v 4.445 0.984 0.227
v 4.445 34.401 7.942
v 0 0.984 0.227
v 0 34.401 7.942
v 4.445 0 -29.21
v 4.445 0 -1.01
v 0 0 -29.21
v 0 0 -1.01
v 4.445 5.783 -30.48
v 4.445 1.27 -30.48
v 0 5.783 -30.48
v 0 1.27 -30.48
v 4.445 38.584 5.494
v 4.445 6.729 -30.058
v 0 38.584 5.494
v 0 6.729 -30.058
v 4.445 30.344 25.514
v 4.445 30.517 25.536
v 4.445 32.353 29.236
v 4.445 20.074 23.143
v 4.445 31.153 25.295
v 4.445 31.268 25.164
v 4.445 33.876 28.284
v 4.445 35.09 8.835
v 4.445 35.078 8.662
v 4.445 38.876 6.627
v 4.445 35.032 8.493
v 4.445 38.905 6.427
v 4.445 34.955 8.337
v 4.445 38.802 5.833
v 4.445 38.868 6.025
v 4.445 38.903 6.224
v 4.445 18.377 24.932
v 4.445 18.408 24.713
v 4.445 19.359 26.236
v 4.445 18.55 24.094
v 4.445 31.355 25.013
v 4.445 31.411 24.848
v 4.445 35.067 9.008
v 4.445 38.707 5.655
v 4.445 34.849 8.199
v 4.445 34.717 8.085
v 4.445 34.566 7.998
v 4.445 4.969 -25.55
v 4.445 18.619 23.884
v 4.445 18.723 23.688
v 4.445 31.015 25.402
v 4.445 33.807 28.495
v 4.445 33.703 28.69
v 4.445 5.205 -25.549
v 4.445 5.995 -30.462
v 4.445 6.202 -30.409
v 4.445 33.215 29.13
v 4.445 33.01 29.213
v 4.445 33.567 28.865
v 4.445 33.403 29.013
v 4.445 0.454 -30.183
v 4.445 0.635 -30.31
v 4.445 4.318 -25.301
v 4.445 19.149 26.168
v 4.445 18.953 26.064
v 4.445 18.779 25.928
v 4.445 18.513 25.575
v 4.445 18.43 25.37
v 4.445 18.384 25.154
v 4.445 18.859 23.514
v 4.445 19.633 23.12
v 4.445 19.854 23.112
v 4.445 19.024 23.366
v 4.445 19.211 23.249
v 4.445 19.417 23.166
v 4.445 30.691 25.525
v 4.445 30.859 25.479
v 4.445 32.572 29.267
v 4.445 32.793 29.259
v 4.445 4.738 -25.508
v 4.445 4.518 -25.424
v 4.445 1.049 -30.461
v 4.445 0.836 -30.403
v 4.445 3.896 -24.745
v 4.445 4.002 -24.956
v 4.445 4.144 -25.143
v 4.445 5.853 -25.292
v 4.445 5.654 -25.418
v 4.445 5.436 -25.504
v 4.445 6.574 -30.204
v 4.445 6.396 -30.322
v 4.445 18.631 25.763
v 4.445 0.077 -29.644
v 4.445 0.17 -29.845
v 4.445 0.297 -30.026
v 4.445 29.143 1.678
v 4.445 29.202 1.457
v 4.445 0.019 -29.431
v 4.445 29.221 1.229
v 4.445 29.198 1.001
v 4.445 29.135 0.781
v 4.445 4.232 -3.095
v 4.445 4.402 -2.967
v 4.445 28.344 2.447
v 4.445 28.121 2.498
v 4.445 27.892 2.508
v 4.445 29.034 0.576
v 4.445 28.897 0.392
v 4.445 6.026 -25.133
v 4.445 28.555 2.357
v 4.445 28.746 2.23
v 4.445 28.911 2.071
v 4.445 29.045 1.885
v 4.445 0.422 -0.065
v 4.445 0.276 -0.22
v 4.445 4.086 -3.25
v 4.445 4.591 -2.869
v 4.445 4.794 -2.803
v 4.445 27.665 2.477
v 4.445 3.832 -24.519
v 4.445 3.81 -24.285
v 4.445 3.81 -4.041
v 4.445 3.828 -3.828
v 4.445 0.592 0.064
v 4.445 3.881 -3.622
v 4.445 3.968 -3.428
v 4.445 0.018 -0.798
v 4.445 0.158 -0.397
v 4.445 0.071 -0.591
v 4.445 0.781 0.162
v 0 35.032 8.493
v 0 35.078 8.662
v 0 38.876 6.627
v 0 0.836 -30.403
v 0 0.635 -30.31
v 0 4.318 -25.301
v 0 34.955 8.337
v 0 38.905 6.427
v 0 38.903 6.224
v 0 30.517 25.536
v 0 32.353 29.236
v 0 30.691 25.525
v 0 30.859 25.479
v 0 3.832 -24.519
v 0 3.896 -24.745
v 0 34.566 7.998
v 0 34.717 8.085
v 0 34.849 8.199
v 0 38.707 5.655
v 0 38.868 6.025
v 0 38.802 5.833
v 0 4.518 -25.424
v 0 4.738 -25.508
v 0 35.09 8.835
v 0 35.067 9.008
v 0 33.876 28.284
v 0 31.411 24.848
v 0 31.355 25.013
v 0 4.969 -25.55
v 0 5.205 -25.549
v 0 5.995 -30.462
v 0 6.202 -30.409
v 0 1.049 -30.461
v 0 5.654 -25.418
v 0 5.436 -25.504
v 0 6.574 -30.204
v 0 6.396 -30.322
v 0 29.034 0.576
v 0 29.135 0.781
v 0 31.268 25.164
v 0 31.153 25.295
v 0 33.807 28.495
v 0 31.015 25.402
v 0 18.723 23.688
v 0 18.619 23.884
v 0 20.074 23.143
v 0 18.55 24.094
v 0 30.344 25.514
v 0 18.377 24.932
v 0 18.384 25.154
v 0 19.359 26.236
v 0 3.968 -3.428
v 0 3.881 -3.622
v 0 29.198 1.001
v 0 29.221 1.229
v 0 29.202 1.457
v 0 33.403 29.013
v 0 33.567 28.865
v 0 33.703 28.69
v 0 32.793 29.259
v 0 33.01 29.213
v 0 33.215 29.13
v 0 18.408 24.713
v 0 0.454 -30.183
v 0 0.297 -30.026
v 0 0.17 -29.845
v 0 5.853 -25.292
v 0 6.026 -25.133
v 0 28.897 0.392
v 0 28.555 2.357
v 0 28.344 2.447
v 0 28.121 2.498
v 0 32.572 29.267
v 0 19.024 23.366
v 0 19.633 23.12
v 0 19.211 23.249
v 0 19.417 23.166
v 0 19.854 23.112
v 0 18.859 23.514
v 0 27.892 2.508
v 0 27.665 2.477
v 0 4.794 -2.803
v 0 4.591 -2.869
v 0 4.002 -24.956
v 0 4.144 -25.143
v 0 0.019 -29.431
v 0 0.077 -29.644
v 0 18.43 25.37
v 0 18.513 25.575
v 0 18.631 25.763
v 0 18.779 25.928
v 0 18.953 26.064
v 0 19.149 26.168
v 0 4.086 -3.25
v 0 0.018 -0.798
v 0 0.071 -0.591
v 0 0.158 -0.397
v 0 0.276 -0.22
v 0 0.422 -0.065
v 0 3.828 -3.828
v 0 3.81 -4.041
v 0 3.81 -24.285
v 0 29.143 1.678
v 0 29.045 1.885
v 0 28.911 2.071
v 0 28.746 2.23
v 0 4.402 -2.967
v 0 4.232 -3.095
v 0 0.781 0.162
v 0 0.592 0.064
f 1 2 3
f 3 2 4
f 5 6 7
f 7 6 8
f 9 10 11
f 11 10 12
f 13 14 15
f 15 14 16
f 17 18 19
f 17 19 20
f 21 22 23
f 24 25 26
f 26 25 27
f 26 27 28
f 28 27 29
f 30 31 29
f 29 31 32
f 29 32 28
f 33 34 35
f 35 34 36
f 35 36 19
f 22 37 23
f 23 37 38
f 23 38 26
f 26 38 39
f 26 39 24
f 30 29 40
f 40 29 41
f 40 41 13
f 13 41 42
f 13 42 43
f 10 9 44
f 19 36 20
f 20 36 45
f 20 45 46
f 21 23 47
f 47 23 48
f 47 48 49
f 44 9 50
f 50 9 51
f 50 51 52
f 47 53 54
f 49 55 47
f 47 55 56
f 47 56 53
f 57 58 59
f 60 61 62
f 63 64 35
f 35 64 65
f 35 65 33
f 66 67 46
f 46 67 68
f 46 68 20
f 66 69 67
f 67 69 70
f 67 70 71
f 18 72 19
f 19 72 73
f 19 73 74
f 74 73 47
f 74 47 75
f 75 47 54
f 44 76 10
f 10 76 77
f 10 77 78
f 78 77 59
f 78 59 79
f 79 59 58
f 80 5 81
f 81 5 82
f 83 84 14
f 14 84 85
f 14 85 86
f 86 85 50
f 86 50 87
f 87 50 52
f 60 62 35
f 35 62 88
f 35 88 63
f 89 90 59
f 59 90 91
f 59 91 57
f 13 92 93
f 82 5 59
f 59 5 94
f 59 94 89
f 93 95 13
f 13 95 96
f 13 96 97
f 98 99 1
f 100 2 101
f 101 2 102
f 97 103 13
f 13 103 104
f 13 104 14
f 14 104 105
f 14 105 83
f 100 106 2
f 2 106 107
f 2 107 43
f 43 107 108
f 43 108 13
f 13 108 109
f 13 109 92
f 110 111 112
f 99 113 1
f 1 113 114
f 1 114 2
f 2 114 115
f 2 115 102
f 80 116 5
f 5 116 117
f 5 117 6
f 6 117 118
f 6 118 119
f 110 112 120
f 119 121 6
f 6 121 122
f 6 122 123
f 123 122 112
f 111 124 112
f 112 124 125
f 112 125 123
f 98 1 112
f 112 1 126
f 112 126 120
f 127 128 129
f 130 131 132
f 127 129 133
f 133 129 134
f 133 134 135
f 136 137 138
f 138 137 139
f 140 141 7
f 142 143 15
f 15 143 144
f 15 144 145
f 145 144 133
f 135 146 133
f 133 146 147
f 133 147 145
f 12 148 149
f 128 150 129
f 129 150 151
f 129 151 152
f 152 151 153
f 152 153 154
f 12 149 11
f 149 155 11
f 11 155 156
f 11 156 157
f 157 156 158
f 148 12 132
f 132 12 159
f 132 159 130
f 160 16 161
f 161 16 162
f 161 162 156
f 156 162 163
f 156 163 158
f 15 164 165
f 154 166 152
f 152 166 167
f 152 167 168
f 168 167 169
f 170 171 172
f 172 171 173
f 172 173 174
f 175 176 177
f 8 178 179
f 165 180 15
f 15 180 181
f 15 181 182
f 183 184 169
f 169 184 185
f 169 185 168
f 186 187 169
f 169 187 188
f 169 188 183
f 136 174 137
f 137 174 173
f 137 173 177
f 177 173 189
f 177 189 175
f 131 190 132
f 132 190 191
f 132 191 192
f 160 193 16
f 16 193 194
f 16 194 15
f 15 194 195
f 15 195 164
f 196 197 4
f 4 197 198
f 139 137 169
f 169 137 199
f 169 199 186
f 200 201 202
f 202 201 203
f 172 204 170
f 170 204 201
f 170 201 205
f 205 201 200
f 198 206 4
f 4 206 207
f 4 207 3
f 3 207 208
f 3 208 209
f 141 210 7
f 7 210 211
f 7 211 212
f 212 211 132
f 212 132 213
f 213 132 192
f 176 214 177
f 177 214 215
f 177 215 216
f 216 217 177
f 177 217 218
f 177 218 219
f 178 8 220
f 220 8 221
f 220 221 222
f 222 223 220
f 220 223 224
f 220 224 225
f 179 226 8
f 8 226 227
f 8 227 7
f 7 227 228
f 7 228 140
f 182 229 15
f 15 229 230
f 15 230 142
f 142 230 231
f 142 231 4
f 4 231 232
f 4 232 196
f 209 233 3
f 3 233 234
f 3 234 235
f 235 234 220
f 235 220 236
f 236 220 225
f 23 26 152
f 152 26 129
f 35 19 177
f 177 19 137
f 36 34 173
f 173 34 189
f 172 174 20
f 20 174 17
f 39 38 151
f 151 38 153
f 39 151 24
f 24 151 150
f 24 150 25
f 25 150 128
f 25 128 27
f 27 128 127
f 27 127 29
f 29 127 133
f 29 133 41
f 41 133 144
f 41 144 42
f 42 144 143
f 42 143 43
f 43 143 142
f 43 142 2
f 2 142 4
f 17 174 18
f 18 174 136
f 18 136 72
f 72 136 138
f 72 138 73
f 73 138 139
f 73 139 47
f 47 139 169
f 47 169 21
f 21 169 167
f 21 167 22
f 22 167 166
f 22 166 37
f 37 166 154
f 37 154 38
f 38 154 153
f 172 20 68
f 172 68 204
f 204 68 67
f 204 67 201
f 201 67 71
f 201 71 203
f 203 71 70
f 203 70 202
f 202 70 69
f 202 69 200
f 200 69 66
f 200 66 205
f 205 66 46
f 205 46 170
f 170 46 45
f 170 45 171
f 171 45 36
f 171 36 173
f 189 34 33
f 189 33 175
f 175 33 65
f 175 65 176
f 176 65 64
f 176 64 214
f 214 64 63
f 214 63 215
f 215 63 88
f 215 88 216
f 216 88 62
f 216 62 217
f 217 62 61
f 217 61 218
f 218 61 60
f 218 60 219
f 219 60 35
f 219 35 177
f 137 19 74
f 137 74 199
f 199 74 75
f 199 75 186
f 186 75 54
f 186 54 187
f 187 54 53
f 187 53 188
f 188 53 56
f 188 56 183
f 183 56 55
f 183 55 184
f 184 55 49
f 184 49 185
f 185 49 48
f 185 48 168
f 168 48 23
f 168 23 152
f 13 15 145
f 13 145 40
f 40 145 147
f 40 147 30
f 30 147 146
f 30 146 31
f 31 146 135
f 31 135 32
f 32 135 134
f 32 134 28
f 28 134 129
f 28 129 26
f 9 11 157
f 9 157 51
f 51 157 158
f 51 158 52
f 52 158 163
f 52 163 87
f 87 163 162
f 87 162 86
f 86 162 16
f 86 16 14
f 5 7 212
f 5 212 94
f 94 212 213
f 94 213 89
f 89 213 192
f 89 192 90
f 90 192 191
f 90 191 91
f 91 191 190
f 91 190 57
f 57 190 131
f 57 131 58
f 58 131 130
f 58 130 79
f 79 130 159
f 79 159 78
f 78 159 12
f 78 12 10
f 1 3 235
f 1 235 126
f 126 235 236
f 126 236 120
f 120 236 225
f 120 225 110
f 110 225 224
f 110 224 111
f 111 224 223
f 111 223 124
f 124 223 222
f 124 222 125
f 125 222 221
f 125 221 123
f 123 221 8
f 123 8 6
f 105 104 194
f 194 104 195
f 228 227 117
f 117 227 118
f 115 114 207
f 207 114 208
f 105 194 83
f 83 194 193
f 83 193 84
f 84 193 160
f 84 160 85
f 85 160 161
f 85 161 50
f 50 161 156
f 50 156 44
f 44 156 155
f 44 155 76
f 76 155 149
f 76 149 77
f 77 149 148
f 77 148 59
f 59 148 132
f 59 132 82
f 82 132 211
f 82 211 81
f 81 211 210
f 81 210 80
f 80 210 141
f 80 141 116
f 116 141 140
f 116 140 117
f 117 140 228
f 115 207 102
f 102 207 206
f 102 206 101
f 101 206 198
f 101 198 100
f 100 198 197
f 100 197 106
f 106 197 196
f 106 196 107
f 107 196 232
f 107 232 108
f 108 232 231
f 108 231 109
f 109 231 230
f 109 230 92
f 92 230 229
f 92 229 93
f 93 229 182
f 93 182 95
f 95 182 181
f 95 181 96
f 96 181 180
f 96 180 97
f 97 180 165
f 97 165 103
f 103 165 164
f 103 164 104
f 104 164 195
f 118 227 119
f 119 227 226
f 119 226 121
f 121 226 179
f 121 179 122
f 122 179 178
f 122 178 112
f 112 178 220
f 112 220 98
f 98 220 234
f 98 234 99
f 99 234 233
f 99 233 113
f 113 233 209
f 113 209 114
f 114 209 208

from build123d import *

# Parameters (mm, degrees)
BOSS_EXTRUDE1_DEPTH = 4.445
BOSS_EXTRUDE2_DEPTH = 4.445
FILLET1_R           = 0.889
FILLET2_R           = 1.27
CUT_EXTRUDE1_DEPTH  = 50.624972926
FILLET3_R           = 1.27


with BuildPart() as part:
    # Sketch1 → Boss-Extrude1 (new body)
    with BuildSketch(Plane(origin=(0, 0, 0), x_dir=(0, 0, -1), z_dir=(1, 0, 0))):
        Polygon((0, 0), (30.48, 0), (30.48, 6.35), (-1.792103412, 35.267324495), (-8.142103412, 35.267324495), align=None)
    extrude(amount=BOSS_EXTRUDE1_DEPTH)

    # Sketch2 → Boss-Extrude2 (add)
    with BuildSketch(Plane(origin=(4.445, 0, 0), x_dir=(0, 0, -1), z_dir=(1, 0, 0))):
        Polygon((-8.142103412, 35.267324495), (-25.71389316, 31.210557181), (-22.85701477, 18.836057358), (-25.950639726, 18.121837761), (-29.521737714, 33.589962539), (-5.984546816, 39.023951226), (-1.792103412, 35.267324495), align=None)
    extrude(amount=-BOSS_EXTRUDE2_DEPTH)

    # Fillet1
    fillet1_edges = [part.edges().sort_by_distance(p)[0] for p in [
        (2.2225, 31.210557181, 25.71389316),
        (2.2225, 35.267324495, 8.142103412),
    ]]
    fillet(fillet1_edges, radius=FILLET1_R)

    # Fillet2
    fillet2_edges = [part.edges().sort_by_distance(p)[0] for p in [
        (2.2225, 39.023951226, 5.984546816),
        (2.2225, 33.589962539, 29.521737714),
        (2.2225, 18.121837761, 25.950639726),
        (2.2225, 18.836057358, 22.85701477),
        (2.2225, 6.35, -30.48),
        (2.2225, 0, -30.48),
        (2.2225, 0, 0),
    ]]
    fillet(fillet2_edges, radius=FILLET2_R)

    # Sketch3 → Cut-Extrude1 (cut, through all)
    with BuildSketch(Plane(origin=(4.445, 0, 0), x_dir=(0, 0, -1), z_dir=(1, 0, 0))):
        Polygon((-3.37912104, 31.57359901), (3.030610843, 3.81), (27.605409997, 3.81), align=None)
    extrude(amount=-CUT_EXTRUDE1_DEPTH, mode=Mode.SUBTRACT)

    # Fillet3
    fillet3_edges = [part.edges().sort_by_distance(p)[0] for p in [
        (2.2225, 31.57359901, 3.37912104),
        (2.2225, 3.81, -27.605409997),
        (2.2225, 3.81, -3.030610843),
    ]]
    fillet(fillet3_edges, radius=FILLET3_R)


solid = part.part
